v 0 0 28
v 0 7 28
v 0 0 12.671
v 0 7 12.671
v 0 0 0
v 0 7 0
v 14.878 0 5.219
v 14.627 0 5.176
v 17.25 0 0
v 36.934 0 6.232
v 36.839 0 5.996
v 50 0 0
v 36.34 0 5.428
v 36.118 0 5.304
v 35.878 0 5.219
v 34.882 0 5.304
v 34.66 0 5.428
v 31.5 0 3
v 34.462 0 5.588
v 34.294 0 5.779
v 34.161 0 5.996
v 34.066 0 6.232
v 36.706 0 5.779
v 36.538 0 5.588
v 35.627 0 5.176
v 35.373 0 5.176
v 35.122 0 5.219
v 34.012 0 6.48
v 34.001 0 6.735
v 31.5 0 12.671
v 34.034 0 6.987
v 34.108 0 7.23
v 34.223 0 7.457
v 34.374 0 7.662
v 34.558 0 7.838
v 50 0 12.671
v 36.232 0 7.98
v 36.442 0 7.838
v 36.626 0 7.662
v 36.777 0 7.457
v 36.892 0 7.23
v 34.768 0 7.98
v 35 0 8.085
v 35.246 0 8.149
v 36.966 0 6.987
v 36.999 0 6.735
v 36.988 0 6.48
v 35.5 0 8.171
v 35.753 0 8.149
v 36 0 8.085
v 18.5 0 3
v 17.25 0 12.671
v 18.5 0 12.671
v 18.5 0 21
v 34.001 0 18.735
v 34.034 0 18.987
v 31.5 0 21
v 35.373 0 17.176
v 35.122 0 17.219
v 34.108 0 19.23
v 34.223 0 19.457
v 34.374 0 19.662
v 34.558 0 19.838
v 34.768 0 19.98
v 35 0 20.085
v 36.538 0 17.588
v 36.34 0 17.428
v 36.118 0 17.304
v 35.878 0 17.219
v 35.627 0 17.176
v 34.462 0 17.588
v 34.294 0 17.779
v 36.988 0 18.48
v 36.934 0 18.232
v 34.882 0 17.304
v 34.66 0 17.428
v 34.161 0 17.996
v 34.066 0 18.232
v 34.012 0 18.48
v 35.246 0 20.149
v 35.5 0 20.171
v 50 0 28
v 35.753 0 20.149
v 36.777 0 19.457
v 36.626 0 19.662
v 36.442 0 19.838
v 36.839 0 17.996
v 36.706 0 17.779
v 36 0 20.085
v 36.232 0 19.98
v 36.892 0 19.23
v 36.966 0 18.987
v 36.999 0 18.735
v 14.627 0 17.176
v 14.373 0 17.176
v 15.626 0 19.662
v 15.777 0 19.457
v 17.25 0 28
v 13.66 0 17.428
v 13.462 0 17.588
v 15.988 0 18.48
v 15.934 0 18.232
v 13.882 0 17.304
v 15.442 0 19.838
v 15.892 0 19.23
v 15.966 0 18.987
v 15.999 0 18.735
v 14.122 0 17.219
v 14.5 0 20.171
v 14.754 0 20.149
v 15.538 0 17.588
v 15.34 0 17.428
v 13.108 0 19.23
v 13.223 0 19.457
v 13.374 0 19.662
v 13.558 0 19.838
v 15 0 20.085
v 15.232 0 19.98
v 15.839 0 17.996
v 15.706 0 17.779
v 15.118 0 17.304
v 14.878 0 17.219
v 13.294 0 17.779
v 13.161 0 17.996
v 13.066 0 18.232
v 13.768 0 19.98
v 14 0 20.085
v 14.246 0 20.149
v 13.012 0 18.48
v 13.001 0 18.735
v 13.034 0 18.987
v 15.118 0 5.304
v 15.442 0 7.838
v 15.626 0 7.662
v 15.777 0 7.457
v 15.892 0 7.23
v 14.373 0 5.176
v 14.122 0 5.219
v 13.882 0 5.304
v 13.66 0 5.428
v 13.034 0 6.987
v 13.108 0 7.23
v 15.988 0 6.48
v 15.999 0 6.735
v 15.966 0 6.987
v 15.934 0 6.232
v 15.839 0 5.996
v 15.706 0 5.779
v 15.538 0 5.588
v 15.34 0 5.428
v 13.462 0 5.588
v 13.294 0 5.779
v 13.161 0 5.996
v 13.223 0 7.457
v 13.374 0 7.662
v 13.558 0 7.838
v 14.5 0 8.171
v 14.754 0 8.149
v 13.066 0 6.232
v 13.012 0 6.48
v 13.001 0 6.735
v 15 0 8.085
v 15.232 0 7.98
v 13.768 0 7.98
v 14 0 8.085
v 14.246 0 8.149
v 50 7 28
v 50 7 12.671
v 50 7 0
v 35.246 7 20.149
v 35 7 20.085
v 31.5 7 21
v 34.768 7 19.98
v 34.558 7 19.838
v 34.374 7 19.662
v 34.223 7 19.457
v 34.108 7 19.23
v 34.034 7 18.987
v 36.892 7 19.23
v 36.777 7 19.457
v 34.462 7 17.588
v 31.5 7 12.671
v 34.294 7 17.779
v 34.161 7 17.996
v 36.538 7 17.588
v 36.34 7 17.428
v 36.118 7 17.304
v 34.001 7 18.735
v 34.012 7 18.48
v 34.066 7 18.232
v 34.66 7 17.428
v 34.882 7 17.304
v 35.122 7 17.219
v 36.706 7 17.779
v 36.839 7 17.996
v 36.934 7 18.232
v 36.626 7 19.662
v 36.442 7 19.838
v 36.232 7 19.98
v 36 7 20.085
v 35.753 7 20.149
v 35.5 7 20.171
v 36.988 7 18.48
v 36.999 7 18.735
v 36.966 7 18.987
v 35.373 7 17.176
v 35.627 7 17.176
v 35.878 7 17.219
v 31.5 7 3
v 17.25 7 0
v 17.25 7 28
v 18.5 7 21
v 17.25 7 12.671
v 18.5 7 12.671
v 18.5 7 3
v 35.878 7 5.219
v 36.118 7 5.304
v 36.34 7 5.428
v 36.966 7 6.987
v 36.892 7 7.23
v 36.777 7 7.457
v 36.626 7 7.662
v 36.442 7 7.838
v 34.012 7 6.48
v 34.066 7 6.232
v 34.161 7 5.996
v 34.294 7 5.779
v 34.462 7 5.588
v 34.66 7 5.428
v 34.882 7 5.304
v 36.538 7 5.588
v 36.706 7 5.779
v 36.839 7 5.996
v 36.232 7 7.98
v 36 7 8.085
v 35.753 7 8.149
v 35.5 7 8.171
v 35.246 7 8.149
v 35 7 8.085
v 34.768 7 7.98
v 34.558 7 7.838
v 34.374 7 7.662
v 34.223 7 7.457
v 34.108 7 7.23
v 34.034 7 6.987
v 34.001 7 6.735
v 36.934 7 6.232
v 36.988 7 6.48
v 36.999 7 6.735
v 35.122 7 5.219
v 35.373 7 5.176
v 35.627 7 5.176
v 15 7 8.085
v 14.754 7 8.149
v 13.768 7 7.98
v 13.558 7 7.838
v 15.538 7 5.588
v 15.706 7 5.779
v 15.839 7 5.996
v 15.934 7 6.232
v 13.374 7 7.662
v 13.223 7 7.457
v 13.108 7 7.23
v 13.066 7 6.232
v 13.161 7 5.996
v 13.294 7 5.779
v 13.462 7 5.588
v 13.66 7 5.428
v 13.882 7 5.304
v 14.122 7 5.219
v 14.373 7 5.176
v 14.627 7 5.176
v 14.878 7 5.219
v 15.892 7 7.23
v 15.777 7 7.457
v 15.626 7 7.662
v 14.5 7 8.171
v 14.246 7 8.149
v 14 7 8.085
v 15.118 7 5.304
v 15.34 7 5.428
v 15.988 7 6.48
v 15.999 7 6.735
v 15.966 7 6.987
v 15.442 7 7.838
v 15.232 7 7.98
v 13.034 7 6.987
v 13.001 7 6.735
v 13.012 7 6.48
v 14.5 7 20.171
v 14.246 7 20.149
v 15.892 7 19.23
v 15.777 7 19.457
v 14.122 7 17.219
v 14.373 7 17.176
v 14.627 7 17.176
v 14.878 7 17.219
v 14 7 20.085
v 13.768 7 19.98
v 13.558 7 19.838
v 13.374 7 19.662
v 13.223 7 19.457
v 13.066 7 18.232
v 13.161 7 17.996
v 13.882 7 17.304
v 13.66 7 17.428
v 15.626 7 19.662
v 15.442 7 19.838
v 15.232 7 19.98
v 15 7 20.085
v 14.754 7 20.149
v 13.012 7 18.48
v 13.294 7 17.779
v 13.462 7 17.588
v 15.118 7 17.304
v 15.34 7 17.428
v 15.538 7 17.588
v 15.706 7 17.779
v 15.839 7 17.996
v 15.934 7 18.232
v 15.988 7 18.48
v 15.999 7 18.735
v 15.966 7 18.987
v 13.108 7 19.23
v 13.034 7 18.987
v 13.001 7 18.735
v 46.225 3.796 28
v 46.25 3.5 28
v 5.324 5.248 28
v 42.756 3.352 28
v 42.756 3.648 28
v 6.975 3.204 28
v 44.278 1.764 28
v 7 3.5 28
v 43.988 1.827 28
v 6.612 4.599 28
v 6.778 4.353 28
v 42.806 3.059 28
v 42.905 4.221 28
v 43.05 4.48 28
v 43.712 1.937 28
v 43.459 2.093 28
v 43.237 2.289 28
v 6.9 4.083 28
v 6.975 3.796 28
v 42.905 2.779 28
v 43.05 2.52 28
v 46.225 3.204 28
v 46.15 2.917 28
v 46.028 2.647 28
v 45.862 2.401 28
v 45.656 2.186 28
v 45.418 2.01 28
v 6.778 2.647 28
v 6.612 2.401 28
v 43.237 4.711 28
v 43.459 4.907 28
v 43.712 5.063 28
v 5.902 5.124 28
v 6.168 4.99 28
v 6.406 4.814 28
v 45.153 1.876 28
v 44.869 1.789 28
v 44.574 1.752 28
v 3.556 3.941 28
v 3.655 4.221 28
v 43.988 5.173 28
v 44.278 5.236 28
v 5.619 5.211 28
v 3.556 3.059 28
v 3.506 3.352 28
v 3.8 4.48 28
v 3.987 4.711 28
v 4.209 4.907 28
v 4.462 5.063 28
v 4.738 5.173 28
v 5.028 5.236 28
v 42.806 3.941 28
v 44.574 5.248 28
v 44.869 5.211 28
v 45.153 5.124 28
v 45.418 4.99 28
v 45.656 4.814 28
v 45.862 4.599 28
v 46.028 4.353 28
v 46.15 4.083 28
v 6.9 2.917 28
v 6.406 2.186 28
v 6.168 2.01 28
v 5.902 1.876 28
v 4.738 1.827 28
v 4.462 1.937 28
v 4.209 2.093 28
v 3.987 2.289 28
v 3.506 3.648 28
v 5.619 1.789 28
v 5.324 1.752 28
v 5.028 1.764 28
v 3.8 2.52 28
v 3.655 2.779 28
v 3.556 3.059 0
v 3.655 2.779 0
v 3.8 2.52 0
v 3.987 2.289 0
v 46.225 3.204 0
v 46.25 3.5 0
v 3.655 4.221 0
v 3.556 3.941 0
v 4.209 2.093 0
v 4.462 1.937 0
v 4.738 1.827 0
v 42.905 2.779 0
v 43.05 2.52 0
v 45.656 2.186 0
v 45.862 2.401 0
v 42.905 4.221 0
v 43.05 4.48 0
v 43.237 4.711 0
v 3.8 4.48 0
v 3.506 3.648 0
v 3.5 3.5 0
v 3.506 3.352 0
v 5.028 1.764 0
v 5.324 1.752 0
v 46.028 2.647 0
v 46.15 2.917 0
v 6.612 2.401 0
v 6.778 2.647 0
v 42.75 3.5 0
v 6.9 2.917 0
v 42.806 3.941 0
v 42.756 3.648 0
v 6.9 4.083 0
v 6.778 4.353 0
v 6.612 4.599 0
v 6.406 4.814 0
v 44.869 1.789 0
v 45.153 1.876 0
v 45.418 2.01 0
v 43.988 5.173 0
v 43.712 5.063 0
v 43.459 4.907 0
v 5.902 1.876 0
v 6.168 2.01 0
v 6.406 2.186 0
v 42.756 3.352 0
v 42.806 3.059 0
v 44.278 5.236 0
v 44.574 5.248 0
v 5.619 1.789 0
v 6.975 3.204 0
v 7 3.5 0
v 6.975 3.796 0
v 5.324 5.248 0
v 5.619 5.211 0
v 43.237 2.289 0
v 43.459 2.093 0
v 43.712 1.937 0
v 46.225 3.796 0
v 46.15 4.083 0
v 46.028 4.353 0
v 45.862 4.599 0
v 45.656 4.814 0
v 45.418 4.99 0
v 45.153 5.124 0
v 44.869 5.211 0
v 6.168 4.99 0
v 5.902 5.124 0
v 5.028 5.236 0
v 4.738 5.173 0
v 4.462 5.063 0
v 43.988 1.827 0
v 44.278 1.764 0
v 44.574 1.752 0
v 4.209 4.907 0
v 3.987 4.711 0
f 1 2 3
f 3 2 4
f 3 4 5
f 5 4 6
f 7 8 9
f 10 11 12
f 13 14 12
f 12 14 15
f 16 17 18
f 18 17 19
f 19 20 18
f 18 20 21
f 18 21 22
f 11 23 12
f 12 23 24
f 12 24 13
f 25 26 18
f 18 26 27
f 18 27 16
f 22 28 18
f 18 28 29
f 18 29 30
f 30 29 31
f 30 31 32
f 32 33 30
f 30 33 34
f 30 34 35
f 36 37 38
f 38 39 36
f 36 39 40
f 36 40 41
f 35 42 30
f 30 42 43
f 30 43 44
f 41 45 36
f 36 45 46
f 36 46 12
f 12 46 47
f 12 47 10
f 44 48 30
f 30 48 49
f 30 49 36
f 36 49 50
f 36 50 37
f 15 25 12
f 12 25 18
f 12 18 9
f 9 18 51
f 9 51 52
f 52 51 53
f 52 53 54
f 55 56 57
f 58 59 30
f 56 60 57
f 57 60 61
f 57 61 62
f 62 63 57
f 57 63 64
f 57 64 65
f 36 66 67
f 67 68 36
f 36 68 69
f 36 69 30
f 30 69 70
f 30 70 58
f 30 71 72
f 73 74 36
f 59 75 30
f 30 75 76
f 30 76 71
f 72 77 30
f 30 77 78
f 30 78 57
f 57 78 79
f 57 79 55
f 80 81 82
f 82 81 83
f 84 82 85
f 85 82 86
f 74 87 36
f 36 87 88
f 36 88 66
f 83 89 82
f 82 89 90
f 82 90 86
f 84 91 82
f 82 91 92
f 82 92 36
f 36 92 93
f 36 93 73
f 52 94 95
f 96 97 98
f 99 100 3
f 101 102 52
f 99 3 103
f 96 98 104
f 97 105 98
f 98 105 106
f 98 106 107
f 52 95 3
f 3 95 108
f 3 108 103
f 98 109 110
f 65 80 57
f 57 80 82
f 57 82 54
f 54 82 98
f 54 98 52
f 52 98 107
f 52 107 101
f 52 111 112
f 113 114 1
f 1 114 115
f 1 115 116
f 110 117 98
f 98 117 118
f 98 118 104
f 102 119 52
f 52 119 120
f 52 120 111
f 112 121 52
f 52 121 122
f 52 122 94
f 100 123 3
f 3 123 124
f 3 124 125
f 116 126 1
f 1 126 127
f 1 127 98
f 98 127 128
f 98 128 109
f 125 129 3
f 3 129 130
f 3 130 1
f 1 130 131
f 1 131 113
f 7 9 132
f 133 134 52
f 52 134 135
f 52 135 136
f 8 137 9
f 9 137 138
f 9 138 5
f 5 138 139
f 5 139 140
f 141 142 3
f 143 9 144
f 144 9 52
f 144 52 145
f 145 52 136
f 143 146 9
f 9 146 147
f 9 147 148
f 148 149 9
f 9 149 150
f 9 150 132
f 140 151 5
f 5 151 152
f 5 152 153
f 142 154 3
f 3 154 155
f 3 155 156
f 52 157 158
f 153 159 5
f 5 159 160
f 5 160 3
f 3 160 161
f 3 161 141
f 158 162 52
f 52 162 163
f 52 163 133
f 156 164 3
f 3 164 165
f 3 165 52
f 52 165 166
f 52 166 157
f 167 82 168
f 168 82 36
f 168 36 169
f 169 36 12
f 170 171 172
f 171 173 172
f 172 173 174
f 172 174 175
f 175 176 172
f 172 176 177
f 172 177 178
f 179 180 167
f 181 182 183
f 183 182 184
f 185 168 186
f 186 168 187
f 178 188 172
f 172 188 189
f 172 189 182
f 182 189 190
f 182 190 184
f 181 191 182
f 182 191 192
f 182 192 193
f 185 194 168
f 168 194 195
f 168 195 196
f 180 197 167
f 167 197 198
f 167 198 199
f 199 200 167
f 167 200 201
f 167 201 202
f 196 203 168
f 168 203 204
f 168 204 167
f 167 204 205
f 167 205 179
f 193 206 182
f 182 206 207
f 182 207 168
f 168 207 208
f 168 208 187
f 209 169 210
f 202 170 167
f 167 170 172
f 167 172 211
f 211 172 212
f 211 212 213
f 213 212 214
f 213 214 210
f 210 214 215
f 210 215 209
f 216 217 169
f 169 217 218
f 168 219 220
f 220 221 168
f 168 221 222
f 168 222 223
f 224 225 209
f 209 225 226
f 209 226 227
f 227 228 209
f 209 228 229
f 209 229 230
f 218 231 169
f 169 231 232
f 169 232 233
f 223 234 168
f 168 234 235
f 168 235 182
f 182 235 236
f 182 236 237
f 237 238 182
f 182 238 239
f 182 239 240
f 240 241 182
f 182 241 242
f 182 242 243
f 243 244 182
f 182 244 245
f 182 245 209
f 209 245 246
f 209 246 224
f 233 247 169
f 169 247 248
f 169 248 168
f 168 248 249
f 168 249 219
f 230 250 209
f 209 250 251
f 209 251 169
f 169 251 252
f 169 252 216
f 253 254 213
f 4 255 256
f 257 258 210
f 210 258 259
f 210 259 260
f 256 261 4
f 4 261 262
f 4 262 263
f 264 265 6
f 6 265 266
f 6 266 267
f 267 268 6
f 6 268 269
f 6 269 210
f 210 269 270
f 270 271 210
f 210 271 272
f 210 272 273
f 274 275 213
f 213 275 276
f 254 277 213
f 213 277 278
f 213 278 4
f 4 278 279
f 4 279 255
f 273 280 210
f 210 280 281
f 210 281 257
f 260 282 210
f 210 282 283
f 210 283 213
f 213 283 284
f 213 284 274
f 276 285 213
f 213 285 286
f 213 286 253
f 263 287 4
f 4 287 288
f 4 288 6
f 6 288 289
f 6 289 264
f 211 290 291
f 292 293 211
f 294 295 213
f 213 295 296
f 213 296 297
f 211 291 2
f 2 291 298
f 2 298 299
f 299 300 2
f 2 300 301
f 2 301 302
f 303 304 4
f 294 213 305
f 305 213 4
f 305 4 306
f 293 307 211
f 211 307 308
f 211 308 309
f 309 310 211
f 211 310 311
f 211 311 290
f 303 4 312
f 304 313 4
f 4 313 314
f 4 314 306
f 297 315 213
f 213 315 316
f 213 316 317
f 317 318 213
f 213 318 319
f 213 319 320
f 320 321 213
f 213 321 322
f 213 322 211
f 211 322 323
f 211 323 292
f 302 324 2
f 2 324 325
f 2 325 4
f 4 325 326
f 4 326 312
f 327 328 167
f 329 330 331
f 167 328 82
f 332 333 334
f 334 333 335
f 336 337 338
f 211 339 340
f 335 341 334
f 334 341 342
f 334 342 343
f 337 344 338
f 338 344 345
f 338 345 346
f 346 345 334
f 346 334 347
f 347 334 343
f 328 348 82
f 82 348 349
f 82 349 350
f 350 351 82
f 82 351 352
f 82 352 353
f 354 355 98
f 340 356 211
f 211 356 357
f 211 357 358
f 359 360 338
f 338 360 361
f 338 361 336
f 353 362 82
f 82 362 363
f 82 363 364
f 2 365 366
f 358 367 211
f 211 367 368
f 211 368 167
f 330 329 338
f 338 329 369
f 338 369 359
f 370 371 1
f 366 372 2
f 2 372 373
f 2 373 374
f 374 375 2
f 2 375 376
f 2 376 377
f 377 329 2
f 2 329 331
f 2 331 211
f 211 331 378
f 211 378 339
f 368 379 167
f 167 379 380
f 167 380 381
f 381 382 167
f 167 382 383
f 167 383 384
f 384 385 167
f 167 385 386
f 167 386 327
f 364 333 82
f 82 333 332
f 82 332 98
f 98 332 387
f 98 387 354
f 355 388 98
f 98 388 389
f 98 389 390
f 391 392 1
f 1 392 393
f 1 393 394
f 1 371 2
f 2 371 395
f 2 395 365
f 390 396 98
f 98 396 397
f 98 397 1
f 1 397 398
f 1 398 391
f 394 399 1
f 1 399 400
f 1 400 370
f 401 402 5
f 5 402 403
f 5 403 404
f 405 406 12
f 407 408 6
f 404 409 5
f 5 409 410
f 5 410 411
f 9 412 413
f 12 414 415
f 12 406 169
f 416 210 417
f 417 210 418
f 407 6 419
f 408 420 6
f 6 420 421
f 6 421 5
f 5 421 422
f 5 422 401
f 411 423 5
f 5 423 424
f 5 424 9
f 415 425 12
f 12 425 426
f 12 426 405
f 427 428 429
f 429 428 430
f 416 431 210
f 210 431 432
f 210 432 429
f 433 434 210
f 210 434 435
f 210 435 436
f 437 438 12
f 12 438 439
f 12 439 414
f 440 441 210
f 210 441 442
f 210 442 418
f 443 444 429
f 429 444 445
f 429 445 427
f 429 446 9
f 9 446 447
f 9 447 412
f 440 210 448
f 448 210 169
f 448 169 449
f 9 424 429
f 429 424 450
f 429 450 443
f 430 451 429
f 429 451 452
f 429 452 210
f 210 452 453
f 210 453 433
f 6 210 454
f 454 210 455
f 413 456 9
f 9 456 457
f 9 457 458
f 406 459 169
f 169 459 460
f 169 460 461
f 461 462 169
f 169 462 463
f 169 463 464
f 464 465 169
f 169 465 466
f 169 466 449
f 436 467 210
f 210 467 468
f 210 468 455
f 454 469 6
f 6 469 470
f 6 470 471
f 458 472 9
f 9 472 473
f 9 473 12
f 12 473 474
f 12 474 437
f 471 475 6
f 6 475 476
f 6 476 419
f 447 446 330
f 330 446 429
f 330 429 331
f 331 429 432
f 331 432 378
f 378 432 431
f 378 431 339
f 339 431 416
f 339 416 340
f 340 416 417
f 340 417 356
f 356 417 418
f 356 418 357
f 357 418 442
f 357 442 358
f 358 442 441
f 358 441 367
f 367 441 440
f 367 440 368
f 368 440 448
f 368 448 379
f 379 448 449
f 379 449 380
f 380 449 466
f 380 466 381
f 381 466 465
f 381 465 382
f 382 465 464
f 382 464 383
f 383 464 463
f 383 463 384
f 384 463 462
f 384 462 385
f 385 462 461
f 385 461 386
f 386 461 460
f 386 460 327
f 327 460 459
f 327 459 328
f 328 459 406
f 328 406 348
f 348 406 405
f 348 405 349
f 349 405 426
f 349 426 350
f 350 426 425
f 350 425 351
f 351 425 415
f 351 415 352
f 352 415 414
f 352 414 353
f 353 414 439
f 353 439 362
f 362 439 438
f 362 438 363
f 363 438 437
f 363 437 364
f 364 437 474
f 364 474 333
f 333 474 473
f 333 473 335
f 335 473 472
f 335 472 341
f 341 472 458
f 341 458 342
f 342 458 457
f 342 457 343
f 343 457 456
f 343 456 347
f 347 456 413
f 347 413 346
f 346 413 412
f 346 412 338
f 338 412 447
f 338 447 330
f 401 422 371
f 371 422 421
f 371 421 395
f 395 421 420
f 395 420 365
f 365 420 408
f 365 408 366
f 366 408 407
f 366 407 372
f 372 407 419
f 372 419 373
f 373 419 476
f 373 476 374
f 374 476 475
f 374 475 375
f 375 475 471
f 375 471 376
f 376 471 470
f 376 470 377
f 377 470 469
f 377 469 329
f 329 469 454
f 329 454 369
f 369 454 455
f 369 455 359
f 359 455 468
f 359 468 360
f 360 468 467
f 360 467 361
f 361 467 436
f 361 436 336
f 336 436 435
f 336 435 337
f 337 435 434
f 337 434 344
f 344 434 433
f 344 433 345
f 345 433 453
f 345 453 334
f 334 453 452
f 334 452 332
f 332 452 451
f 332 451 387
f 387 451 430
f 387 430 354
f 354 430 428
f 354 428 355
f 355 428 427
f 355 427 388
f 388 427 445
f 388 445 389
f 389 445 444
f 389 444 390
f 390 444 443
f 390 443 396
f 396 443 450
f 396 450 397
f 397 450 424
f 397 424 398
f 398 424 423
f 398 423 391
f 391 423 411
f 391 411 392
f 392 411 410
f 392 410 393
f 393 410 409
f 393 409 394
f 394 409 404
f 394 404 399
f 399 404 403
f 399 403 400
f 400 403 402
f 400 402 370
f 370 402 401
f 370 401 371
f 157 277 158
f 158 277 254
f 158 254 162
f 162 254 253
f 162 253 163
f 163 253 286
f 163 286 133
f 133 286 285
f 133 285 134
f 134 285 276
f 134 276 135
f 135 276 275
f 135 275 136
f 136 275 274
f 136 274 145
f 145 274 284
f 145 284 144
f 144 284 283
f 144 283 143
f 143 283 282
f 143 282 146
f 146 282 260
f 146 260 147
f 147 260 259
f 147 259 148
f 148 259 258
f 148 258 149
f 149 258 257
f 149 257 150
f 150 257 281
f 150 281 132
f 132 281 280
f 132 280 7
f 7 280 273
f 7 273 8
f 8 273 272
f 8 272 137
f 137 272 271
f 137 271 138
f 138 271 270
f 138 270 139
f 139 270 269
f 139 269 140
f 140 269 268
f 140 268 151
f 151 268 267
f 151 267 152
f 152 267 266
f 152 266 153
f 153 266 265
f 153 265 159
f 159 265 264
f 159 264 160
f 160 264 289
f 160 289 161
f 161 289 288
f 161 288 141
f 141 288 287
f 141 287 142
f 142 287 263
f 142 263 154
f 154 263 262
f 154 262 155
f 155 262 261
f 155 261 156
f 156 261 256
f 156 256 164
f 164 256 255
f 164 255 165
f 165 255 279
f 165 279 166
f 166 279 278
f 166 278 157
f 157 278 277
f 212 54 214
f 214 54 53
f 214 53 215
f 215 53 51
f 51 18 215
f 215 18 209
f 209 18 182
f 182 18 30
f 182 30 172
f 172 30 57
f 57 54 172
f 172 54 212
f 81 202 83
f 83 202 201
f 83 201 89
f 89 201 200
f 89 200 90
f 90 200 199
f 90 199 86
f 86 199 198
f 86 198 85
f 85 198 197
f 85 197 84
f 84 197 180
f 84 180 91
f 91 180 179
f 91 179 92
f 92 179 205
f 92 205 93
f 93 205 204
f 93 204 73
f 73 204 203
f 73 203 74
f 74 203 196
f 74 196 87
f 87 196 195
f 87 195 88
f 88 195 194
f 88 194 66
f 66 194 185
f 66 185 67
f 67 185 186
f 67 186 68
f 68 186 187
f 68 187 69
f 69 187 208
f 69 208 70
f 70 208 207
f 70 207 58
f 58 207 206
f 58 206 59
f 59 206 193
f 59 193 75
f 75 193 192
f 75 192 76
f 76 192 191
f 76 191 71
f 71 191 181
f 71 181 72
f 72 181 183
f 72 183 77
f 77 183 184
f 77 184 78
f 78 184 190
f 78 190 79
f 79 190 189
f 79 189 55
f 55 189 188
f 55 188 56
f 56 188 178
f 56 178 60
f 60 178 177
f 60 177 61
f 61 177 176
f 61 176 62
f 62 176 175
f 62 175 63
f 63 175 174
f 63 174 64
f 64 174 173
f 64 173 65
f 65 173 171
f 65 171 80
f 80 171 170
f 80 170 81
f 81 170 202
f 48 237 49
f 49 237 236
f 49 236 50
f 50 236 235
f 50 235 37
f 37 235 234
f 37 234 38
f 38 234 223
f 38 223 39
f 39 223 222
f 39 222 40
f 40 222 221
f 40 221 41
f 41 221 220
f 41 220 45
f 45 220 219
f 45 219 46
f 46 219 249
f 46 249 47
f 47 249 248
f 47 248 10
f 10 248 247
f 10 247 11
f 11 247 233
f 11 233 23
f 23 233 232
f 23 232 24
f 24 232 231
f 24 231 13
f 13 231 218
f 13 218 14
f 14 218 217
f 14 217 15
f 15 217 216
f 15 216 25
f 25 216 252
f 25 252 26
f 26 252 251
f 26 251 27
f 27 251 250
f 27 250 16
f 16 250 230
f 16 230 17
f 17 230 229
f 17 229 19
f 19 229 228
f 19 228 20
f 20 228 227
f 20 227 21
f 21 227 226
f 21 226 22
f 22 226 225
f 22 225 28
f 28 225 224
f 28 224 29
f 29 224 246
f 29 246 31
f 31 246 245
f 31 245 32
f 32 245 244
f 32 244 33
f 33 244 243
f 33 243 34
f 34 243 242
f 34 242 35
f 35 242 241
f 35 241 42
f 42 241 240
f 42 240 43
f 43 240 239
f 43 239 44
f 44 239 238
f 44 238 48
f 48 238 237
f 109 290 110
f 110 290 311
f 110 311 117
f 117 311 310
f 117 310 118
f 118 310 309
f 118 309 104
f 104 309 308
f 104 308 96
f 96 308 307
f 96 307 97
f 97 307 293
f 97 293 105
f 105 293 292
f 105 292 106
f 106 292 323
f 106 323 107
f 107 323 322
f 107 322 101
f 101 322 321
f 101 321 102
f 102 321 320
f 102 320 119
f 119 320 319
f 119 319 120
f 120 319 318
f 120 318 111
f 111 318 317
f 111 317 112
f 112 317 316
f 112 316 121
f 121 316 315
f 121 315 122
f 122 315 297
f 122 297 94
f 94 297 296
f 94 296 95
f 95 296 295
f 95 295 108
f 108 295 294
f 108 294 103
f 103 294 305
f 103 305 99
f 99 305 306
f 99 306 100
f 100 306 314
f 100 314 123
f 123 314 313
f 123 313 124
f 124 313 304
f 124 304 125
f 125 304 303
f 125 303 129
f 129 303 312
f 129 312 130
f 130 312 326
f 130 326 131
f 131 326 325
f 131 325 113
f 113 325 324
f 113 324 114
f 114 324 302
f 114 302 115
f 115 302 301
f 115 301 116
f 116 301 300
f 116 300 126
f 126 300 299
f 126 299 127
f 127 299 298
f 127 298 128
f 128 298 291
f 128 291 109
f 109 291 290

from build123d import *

# Parameters (mm, degrees)
ESQUISSE1_W             = 50
ESQUISSE1_H             = 7
BOSS_EXTRU_1_DEPTH      = 28
ESQUISSE2_R             = 1.75
ENL_V_MAT_EXTRU_2_DEPTH = 70
ESQUISSE3_R             = 1.5
ESQUISSE3_W             = 13
ESQUISSE3_H             = 18
ENL_V_MAT_EXTRU_3_DEPTH = 58.732140095


with BuildPart() as part:
    # Esquisse1 → Boss.-Extru.1 (new body)
    with BuildSketch(Plane.XY):
        with Locations((25, 3.5)):
            Rectangle(ESQUISSE1_W, ESQUISSE1_H)
    extrude(amount=BOSS_EXTRU_1_DEPTH)

    # Esquisse2 → Enlèv. mat.-Extru.2 (cut)
    with BuildSketch(Plane.XY.offset(28)):
        with Locations((5.25, 3.5)):
            Circle(ESQUISSE2_R)
        with Locations((44.5, 3.5)):
            Circle(ESQUISSE2_R)
    extrude(amount=-ENL_V_MAT_EXTRU_2_DEPTH, mode=Mode.SUBTRACT)

    # Esquisse3 → Enlèv. mat.-Extru.3 (cut, through all)
    with BuildSketch(Plane(origin=(0, 7, 0), x_dir=(1, 0, 0), z_dir=(0, 1, 0))):
        with Locations(Location((14.5, -6.67085961, 0), (0, 0, 270))):
            Circle(ESQUISSE3_R)
        with Locations(Location((14.5, -18.67085961, 0), (0, 0, 270))):
            Circle(ESQUISSE3_R)
        with Locations(Location((35.5, -6.67085961, 0), (0, 0, 270))):
            Circle(ESQUISSE3_R)
        with Locations(Location((35.5, -18.67085961, 0), (0, 0, 270))):
            Circle(ESQUISSE3_R)
        with Locations((25, -12)):
            Rectangle(ESQUISSE3_W, ESQUISSE3_H)
    extrude(amount=-ENL_V_MAT_EXTRU_3_DEPTH, mode=Mode.SUBTRACT)


solid = part.part
